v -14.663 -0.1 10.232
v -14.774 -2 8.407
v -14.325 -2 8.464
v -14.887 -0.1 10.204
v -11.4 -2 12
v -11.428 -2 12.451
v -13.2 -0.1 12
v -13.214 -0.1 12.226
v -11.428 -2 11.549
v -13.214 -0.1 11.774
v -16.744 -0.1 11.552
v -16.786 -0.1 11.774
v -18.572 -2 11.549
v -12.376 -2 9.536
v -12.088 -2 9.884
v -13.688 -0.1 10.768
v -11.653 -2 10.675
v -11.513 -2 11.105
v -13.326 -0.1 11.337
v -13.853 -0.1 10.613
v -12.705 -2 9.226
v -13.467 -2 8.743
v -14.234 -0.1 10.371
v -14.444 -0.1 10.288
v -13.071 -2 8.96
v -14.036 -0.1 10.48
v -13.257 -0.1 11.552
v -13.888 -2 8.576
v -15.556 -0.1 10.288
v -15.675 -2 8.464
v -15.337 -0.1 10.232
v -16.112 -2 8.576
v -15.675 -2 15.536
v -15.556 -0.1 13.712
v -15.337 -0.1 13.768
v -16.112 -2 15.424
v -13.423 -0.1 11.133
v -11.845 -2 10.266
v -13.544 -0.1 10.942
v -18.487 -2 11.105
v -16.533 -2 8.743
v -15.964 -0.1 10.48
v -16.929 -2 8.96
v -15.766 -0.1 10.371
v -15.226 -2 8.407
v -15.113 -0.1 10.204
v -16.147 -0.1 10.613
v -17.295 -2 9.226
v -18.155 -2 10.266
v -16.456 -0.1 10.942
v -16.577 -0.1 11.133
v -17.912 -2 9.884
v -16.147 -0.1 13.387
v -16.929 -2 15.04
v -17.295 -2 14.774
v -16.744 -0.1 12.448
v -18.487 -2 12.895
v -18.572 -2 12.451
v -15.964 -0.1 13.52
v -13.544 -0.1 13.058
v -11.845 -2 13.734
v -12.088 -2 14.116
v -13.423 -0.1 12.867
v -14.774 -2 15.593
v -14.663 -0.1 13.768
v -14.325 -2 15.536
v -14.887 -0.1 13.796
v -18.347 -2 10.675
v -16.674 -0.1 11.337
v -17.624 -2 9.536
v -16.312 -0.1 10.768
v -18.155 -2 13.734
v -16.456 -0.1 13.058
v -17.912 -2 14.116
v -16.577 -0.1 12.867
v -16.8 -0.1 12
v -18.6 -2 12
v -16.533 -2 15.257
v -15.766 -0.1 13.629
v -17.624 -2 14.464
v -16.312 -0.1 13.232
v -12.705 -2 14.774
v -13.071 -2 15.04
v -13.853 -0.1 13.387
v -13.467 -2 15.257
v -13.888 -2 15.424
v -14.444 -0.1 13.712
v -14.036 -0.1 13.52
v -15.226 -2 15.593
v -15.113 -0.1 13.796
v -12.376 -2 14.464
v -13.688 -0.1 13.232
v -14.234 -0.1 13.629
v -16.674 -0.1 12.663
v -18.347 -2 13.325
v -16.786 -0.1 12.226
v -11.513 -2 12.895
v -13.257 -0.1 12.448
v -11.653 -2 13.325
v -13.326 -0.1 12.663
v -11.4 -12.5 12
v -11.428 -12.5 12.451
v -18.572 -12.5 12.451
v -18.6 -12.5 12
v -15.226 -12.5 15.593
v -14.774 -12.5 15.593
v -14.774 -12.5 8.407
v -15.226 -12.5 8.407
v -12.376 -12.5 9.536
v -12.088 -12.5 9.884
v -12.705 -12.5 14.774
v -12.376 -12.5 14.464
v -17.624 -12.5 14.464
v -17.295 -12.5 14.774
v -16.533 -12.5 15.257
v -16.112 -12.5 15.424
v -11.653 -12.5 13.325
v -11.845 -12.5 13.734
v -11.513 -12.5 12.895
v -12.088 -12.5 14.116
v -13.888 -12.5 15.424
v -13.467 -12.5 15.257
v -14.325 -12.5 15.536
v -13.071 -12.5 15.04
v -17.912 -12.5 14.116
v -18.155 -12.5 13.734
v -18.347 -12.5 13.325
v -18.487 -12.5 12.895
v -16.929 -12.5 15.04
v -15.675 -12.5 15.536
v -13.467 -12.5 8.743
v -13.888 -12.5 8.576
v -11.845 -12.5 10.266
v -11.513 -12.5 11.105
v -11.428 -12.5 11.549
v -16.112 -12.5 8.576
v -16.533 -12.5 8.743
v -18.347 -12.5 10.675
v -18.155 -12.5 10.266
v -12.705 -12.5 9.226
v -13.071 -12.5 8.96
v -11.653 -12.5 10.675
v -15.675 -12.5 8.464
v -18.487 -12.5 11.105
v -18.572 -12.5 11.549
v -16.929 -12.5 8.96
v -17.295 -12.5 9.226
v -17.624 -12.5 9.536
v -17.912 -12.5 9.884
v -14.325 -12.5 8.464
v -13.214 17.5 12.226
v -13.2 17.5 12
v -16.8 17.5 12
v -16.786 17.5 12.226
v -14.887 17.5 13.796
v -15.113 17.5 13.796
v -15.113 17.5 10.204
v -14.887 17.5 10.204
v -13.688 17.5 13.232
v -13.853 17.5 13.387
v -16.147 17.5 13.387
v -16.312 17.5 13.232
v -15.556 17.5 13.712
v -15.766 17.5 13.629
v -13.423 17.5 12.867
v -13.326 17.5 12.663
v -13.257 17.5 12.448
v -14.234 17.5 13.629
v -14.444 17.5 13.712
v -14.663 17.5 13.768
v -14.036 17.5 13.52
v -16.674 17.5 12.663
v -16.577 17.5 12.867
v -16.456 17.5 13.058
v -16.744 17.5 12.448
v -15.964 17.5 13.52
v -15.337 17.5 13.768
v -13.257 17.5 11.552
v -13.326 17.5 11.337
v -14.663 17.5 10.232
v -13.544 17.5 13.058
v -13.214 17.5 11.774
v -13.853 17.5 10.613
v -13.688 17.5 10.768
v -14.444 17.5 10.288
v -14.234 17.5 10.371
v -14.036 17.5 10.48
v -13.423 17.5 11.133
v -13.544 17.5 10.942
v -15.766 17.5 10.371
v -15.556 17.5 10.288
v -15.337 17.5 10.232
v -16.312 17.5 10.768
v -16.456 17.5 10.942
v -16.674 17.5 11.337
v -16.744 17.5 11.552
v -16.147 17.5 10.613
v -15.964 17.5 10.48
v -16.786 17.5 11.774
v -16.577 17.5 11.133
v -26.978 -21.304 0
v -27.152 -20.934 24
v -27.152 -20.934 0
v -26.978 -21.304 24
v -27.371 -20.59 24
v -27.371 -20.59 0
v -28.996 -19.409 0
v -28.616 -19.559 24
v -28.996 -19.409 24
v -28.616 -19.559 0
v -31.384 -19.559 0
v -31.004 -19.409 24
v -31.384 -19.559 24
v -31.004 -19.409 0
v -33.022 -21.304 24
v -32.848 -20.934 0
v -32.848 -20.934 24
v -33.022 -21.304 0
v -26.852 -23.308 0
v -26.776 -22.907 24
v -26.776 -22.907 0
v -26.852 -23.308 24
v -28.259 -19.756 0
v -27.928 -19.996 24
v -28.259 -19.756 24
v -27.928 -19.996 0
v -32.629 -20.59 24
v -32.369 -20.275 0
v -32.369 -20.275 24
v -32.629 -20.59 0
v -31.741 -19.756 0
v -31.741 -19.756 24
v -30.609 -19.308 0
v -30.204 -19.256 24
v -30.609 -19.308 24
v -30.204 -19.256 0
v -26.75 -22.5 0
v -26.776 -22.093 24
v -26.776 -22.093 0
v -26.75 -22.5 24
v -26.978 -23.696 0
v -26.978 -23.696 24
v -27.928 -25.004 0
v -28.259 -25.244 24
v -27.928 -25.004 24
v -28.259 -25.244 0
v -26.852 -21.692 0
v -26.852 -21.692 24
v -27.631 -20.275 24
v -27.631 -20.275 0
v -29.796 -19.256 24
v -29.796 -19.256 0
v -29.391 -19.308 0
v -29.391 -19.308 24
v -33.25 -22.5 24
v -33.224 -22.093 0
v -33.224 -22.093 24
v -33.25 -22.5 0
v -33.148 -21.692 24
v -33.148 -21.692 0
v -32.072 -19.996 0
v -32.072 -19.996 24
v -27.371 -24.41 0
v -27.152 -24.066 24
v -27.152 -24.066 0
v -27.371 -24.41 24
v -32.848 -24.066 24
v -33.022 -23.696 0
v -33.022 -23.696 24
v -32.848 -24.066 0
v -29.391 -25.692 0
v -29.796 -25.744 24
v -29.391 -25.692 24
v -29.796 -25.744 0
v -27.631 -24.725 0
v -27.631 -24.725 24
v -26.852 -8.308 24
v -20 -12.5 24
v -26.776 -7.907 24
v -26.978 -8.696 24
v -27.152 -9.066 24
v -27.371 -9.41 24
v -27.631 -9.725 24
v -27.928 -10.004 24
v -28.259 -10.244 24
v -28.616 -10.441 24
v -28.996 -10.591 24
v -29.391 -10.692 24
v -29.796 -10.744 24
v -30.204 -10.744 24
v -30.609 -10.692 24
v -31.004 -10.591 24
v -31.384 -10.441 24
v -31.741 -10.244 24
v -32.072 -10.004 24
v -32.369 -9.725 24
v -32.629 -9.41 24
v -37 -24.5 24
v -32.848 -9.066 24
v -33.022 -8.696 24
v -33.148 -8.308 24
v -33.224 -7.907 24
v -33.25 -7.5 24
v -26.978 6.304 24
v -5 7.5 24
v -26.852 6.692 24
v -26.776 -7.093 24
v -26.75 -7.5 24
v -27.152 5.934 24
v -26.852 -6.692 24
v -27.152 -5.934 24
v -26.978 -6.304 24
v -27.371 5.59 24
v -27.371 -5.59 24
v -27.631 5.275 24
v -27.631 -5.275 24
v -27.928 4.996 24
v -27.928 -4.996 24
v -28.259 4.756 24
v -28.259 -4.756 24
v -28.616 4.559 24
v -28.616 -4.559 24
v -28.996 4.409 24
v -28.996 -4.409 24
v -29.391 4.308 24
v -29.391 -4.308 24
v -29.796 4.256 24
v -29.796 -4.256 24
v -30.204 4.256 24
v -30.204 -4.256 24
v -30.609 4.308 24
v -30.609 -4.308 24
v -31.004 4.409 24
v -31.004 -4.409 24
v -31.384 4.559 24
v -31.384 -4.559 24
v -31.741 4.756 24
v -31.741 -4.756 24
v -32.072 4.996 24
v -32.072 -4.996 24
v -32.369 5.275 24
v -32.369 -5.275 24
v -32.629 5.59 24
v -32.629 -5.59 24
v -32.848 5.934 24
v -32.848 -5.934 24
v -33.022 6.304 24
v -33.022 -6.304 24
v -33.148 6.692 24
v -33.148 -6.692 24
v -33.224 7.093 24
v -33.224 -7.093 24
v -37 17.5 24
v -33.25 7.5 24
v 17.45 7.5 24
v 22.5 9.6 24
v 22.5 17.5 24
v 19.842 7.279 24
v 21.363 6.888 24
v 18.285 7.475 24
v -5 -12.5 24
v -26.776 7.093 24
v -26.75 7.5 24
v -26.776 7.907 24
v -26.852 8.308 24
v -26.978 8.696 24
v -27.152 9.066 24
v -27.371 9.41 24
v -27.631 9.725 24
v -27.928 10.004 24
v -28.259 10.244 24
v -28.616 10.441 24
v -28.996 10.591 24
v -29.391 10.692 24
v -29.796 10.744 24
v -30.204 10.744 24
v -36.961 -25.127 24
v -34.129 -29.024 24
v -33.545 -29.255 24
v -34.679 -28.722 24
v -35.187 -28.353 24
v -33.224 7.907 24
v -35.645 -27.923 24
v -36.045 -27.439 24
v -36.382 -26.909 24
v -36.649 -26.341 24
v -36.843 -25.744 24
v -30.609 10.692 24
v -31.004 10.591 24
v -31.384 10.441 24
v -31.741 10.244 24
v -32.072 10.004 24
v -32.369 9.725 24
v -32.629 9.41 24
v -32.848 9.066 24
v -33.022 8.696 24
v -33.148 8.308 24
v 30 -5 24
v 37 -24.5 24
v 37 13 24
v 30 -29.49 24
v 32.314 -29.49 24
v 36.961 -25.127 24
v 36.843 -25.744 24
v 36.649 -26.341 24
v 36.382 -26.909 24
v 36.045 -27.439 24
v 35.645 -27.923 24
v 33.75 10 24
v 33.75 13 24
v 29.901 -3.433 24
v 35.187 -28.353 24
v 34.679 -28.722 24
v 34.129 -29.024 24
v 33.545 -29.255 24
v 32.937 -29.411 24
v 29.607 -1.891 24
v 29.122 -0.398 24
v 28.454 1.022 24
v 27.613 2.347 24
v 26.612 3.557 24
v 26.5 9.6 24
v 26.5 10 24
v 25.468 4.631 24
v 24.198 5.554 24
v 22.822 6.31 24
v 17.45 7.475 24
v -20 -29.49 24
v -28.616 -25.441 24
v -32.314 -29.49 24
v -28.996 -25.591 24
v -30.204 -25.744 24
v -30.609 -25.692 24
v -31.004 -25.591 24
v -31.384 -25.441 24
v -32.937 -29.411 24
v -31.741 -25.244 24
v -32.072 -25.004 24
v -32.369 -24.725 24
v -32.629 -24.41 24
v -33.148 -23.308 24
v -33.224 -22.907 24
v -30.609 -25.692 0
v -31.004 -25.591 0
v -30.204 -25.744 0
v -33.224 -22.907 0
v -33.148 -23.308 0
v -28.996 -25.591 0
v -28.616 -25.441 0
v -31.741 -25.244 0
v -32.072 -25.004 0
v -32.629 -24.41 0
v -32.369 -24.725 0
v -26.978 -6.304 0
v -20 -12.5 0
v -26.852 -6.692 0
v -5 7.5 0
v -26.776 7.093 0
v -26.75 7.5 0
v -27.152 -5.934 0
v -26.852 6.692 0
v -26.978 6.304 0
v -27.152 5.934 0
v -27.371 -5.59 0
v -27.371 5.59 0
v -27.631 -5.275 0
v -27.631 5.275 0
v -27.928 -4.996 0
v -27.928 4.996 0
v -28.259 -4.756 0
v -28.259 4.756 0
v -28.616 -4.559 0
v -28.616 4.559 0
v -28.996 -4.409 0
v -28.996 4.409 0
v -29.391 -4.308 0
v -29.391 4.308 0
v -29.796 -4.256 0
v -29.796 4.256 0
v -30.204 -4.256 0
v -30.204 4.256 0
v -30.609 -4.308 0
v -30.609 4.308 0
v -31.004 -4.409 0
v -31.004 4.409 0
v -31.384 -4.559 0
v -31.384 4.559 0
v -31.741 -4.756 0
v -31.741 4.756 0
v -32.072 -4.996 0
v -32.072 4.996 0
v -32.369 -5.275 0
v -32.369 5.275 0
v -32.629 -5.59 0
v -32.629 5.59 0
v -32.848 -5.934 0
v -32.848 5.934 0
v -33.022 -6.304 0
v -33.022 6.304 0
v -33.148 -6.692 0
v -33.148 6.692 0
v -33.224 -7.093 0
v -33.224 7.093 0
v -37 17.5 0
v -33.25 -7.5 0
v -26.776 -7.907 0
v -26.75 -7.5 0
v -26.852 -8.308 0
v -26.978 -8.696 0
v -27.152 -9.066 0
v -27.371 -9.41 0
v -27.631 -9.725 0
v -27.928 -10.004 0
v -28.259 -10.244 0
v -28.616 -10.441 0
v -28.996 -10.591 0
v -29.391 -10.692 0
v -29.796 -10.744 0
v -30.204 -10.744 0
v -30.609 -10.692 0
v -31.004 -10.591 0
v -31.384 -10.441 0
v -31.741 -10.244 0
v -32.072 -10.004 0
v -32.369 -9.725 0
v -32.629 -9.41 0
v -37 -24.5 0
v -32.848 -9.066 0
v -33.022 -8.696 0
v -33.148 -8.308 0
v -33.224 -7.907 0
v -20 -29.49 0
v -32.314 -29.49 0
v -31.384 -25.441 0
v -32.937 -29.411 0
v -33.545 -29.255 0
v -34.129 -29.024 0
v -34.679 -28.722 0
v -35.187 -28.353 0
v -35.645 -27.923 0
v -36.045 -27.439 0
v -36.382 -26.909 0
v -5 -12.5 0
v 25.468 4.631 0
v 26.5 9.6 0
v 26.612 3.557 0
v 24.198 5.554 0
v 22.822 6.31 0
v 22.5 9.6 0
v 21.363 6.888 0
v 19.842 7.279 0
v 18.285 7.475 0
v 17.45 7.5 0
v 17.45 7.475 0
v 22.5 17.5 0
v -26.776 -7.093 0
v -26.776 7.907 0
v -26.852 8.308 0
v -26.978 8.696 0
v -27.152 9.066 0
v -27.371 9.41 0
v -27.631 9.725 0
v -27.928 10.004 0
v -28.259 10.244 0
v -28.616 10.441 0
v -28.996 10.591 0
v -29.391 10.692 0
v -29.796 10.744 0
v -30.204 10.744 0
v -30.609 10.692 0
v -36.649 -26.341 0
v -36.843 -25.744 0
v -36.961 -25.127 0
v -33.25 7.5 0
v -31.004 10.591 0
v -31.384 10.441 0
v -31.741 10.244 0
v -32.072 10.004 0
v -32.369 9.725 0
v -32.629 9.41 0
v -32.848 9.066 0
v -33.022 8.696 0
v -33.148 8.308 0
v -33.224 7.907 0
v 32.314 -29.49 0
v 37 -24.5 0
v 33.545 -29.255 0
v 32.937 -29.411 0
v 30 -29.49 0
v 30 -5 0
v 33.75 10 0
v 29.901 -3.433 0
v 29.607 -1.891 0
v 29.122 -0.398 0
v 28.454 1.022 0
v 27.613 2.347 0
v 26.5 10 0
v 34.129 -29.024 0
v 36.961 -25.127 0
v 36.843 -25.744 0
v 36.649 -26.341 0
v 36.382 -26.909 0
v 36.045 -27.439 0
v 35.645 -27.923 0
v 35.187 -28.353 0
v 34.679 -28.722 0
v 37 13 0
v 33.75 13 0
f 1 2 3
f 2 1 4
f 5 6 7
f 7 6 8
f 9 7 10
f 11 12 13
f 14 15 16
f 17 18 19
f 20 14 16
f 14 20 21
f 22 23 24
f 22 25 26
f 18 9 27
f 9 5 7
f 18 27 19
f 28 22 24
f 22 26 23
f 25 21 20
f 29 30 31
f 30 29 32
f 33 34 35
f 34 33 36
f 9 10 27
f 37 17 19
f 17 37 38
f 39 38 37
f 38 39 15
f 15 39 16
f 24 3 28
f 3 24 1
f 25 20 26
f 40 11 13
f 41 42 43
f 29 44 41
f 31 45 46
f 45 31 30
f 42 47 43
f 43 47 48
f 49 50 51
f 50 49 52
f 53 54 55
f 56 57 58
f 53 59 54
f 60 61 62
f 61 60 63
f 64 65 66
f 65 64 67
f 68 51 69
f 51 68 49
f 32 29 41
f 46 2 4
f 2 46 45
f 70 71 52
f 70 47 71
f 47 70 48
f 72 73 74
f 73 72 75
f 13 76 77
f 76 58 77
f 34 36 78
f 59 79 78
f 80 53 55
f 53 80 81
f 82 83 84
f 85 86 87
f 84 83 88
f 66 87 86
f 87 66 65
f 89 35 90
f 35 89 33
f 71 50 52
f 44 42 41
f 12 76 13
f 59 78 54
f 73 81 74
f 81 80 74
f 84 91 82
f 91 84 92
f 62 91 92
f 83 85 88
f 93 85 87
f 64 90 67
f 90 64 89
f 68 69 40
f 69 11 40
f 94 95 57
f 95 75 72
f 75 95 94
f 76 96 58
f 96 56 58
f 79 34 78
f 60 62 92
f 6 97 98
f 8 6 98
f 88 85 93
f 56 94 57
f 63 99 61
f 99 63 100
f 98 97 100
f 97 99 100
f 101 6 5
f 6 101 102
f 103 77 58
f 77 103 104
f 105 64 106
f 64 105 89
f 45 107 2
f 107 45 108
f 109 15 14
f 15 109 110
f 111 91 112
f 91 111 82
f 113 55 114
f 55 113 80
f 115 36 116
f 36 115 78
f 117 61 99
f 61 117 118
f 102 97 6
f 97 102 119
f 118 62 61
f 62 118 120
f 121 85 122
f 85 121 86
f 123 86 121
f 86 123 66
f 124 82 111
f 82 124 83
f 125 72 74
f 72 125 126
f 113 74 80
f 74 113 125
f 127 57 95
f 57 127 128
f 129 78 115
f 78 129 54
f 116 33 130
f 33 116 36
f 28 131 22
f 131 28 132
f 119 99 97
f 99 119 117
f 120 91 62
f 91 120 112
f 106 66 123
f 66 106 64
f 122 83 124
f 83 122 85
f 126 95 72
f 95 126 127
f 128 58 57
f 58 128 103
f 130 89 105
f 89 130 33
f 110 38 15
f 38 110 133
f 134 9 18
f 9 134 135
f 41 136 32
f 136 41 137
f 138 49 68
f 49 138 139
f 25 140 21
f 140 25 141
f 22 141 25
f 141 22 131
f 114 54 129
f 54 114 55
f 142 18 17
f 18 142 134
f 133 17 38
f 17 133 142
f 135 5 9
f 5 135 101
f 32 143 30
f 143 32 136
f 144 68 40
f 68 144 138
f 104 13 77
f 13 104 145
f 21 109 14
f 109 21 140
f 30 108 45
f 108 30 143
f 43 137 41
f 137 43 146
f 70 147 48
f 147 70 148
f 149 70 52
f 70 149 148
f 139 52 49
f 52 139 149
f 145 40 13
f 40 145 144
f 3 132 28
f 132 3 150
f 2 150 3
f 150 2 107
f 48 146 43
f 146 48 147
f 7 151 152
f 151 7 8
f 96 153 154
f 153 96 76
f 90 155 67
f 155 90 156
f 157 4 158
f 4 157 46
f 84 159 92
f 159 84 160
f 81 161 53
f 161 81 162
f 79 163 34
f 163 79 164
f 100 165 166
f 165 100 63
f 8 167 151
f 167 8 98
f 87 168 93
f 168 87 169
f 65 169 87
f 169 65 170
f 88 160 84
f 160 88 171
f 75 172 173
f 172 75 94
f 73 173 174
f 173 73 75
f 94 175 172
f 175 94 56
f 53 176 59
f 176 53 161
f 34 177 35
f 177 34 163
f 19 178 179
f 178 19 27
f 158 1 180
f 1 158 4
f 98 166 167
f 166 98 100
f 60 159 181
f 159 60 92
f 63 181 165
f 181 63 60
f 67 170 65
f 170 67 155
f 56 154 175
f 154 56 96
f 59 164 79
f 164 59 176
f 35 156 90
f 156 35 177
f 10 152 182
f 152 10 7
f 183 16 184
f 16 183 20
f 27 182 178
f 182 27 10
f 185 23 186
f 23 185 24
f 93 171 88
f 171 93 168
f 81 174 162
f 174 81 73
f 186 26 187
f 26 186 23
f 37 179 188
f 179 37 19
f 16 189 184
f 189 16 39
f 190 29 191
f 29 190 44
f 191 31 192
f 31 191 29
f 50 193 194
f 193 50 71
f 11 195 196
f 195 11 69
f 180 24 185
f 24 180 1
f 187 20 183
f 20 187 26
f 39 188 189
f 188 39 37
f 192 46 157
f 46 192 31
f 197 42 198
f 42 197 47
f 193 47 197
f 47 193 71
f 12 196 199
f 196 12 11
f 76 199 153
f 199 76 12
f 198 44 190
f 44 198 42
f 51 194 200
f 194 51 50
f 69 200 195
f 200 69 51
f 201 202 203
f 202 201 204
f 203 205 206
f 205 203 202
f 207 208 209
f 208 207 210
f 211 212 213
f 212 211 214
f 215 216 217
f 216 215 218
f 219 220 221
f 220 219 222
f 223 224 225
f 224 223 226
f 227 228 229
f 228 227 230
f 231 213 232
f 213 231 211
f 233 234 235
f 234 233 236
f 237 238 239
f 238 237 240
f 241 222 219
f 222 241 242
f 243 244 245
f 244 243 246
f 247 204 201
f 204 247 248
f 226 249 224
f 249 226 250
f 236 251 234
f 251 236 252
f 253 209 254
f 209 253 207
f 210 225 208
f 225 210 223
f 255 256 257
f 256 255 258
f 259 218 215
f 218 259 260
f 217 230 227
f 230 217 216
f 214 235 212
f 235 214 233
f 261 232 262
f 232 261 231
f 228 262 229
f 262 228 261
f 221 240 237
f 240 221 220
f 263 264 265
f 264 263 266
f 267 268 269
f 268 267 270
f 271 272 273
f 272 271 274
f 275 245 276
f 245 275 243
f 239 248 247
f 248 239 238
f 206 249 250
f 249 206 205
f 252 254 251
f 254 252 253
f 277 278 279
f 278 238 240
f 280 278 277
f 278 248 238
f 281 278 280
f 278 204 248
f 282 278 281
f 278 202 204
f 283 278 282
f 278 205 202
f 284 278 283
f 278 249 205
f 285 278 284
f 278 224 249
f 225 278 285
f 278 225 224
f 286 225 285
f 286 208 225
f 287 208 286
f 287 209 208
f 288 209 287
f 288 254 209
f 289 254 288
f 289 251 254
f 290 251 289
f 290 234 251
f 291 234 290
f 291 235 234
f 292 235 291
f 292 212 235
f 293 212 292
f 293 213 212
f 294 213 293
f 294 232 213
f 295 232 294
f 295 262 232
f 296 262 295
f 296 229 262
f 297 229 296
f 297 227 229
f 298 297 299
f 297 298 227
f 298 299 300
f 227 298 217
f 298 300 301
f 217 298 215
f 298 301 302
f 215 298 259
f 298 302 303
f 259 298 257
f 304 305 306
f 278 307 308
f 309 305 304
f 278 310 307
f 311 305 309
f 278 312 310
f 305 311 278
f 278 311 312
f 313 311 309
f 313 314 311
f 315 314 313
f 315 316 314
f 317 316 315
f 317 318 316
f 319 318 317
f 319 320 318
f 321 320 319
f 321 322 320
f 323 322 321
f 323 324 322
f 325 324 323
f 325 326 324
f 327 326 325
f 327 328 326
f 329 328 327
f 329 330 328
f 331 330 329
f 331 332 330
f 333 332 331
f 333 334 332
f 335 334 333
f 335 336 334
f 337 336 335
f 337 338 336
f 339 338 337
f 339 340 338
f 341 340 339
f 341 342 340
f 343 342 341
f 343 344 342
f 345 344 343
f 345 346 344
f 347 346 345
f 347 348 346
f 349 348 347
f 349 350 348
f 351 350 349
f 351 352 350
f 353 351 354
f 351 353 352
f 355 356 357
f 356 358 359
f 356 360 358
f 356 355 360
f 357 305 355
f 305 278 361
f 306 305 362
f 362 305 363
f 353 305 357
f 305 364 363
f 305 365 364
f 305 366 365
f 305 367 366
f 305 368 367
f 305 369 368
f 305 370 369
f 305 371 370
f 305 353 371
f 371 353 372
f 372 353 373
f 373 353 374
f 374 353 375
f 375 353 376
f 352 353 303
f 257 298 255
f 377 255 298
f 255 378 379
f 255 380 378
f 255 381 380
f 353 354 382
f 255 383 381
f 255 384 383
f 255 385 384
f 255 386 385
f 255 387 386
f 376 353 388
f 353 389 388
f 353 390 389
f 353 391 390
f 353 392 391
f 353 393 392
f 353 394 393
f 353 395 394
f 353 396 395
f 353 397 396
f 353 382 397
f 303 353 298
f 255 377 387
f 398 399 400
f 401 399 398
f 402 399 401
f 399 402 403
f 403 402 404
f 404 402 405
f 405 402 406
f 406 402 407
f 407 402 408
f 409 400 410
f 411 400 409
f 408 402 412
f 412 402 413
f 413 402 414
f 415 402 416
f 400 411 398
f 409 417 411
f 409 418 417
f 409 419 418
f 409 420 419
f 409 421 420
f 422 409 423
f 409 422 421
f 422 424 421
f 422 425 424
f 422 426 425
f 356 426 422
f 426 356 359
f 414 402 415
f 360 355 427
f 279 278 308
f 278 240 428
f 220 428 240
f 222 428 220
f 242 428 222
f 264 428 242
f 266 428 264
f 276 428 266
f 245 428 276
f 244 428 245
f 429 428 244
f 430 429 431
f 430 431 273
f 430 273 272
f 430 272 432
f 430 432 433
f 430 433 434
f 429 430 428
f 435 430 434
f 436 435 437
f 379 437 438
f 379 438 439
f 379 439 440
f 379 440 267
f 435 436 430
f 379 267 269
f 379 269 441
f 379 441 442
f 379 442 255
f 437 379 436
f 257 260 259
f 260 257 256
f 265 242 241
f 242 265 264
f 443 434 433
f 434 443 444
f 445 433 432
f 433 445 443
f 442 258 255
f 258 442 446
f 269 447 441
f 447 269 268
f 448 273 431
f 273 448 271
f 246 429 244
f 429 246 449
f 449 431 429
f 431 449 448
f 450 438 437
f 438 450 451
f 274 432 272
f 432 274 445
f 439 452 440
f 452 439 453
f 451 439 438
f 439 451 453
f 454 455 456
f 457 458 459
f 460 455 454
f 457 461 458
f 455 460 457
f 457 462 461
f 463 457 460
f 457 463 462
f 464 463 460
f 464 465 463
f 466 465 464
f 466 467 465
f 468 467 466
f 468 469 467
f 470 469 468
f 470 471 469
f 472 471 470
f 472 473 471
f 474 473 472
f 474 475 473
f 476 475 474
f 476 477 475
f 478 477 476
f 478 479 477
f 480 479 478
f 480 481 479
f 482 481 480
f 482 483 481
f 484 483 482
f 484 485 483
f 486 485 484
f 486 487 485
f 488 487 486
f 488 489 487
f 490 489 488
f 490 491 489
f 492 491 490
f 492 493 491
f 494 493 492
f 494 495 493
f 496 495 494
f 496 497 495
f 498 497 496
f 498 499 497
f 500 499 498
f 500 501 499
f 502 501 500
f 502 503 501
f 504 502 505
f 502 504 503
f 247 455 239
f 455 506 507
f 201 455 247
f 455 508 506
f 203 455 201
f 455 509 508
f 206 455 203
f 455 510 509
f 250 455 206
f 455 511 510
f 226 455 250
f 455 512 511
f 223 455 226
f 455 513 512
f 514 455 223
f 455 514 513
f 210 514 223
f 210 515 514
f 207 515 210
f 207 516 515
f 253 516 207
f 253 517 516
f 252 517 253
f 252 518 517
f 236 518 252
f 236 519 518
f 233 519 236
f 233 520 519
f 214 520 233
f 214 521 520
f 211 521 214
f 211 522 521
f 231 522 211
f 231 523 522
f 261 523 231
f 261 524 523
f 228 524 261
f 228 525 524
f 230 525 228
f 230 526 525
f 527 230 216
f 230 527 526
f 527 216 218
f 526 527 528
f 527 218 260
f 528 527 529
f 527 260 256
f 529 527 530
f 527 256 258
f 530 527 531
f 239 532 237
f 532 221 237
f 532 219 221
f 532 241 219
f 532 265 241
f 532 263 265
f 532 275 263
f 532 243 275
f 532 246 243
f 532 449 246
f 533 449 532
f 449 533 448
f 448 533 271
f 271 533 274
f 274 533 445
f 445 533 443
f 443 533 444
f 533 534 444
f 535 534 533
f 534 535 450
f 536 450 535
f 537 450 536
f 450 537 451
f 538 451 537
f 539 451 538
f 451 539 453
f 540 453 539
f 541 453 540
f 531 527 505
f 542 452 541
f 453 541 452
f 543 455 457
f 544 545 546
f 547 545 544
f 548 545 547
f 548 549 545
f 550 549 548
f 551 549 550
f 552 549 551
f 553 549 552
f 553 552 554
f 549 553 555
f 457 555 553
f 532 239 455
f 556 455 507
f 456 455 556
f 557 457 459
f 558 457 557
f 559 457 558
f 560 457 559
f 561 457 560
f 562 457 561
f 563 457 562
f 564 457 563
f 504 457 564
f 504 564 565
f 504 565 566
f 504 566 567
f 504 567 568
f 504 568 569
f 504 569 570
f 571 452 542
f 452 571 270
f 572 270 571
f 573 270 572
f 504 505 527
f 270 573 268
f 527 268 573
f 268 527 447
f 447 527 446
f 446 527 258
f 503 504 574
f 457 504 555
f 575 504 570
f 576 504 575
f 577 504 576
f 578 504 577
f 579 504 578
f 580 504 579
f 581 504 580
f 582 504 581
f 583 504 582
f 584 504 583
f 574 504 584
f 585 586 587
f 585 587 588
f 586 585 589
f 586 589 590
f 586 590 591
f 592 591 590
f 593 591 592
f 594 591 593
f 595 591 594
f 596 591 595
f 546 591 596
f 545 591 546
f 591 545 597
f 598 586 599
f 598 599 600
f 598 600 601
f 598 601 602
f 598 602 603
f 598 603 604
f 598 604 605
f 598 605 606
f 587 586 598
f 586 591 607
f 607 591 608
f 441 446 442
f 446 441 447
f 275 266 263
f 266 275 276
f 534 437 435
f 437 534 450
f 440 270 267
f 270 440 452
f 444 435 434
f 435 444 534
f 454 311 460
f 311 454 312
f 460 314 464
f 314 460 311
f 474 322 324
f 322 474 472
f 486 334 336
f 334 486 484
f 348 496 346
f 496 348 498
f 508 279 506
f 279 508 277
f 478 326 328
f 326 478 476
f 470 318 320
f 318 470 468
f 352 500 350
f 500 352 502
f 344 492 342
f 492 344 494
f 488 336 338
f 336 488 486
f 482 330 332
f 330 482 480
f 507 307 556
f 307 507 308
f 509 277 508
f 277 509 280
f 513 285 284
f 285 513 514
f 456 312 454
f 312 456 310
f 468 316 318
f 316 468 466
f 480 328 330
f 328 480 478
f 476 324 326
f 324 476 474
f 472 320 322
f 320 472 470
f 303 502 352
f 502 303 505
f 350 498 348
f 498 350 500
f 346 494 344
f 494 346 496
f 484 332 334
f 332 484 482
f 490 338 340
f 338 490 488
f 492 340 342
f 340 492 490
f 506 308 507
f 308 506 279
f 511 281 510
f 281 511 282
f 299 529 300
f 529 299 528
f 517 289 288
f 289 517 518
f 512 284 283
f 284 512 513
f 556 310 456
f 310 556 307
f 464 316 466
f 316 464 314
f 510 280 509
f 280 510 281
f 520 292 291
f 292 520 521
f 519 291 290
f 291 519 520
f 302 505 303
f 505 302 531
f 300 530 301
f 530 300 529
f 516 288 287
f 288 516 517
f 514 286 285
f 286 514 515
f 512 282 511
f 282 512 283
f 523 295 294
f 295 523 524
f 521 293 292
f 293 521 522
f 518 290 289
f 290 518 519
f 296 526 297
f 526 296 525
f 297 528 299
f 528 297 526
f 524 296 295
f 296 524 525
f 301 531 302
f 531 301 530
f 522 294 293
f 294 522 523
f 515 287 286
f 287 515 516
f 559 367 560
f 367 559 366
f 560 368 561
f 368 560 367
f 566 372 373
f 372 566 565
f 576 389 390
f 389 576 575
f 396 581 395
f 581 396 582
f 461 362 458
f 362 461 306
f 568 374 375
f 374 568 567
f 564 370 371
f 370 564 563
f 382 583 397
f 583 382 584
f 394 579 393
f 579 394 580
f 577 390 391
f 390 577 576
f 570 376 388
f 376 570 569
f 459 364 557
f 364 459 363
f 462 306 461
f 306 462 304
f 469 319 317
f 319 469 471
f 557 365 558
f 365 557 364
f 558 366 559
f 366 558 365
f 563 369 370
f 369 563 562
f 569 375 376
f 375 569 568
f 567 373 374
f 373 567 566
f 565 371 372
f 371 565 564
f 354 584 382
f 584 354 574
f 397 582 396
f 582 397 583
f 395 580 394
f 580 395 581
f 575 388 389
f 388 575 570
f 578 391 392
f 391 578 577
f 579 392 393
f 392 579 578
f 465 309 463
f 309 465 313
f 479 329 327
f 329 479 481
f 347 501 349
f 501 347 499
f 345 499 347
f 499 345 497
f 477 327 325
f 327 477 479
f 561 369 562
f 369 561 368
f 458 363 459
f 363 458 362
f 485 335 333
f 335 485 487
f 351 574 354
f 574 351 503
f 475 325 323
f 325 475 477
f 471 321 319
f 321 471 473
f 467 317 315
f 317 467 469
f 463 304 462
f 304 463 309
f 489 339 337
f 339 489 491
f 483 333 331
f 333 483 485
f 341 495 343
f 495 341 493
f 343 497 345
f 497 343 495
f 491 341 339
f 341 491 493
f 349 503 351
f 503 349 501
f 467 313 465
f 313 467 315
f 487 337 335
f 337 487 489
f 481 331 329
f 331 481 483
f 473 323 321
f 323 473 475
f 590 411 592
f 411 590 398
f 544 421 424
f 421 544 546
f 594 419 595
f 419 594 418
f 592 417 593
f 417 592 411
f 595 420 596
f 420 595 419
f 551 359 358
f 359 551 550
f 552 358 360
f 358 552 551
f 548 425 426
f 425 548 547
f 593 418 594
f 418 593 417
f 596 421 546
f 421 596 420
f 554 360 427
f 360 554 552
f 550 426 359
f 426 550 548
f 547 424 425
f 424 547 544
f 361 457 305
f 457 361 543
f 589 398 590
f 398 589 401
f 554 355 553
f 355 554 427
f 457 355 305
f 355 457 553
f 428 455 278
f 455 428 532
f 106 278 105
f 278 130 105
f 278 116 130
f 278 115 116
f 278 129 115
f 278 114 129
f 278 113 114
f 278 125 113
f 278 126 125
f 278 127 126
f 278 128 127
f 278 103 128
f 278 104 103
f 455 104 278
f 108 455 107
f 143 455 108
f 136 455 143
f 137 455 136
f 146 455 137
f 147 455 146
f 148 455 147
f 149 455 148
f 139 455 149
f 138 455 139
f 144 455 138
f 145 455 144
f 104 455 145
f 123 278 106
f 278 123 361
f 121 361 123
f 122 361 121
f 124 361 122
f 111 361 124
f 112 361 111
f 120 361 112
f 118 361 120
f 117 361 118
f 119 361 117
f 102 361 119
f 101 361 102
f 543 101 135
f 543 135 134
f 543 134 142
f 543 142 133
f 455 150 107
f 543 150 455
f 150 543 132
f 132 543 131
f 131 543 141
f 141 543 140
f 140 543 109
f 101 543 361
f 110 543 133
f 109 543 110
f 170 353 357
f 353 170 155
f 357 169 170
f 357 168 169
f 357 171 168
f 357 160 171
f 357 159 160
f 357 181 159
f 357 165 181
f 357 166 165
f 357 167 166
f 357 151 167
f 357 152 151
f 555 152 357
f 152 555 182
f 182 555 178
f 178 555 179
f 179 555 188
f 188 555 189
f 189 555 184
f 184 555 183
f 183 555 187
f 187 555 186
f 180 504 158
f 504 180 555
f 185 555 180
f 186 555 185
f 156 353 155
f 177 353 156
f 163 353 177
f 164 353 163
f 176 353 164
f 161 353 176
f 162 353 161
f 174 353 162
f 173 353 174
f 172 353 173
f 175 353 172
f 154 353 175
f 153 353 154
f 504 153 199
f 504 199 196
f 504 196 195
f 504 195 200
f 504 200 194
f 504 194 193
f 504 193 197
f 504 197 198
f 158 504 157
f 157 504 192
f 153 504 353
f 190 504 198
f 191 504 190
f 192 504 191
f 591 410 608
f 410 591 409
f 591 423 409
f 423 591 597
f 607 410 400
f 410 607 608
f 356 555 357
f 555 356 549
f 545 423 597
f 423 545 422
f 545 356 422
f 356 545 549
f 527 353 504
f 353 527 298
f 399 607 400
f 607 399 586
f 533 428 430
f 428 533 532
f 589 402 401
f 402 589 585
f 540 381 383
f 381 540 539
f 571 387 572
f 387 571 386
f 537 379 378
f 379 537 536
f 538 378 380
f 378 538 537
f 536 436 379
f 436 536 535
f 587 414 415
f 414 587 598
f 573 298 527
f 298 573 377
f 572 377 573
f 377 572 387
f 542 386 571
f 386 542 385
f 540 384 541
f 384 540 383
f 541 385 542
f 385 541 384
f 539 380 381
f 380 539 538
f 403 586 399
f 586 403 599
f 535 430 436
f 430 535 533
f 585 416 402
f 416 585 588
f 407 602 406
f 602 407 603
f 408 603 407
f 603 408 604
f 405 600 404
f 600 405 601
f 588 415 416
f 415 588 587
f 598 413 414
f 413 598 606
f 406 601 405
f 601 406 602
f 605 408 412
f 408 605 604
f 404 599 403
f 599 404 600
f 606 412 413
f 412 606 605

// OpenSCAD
$fn = 50;


difference() {
	union() {
		hull() {
			translate(v = [-32.0000000000, 24.5000000000, 0]) {
				cylinder(h = 24, r = 5);
			}
			translate(v = [32.0000000000, 24.5000000000, 0]) {
				cylinder(h = 24, r = 5);
			}
			translate(v = [-32.0000000000, -24.5000000000, 0]) {
				cylinder(h = 24, r = 5);
			}
			translate(v = [32.0000000000, -24.5000000000, 0]) {
				cylinder(h = 24, r = 5);
			}
		}
	}
	union() {
		translate(v = [-15, -2, 12.0000000000]) {
			rotate(a = [90, 0, 0]) {
				difference() {
					union() {
						#translate(v = [0, 0, -25.0000000000]) {
							cylinder(h = 25, r = 1.5000000000);
						}
						#translate(v = [0, 0, -1.9000000000]) {
							cylinder(h = 1.9000000000, r1 = 1.8000000000, r2 = 3.6000000000);
						}
						#cylinder(h = 250, r = 3.6000000000);
						#translate(v = [0, 0, -25.0000000000]) {
							cylinder(h = 25, r = 1.8000000000);
						}
						#translate(v = [0, 0, -25.0000000000]) {
							cylinder(h = 25, r = 1.5000000000);
						}
					}
					union();
				}
			}
		}
		translate(v = [-30.0000000000, -22.5000000000, 0]) {
			cylinder(h = 24, r = 3.2500000000);
		}
		translate(v = [-30.0000000000, -7.5000000000, 0]) {
			cylinder(h = 24, r = 3.2500000000);
		}
		translate(v = [-30.0000000000, 7.5000000000, 0]) {
			cylinder(h = 24, r = 3.2500000000);
		}
		translate(v = [17.5000000000, -5, 0.0000000000]) {
			cylinder(h = 24, r = 12.5000000000);
		}
		translate(v = [-5.0000000000, -95.0000000000, 0]) {
			cube(size = [35, 90, 24]);
		}
		translate(v = [-5.0000000000, -95.0000000000, 0]) {
			cube(size = [22.4500000000, 102.5000000000, 24]);
		}
		translate(v = [-20.0000000000, -72.5000000000, 0]) {
			cube(size = [50, 60, 24]);
		}
		translate(v = [-58.5000000000, 17.5000000000, 0]) {
			cube(size = [100, 85, 24]);
		}
		translate(v = [26.2500000000, 10.0000000000, 0]) {
			cube(size = [7.5000000000, 100, 24]);
		}
		translate(v = [33.5000000000, 13.0000000000, 0]) {
			cube(size = [7, 94, 24]);
		}
		translate(v = [22.5000000000, 9.6000000000, 0]) {
			cube(size = [4, 8, 24]);
		}
	}
}
